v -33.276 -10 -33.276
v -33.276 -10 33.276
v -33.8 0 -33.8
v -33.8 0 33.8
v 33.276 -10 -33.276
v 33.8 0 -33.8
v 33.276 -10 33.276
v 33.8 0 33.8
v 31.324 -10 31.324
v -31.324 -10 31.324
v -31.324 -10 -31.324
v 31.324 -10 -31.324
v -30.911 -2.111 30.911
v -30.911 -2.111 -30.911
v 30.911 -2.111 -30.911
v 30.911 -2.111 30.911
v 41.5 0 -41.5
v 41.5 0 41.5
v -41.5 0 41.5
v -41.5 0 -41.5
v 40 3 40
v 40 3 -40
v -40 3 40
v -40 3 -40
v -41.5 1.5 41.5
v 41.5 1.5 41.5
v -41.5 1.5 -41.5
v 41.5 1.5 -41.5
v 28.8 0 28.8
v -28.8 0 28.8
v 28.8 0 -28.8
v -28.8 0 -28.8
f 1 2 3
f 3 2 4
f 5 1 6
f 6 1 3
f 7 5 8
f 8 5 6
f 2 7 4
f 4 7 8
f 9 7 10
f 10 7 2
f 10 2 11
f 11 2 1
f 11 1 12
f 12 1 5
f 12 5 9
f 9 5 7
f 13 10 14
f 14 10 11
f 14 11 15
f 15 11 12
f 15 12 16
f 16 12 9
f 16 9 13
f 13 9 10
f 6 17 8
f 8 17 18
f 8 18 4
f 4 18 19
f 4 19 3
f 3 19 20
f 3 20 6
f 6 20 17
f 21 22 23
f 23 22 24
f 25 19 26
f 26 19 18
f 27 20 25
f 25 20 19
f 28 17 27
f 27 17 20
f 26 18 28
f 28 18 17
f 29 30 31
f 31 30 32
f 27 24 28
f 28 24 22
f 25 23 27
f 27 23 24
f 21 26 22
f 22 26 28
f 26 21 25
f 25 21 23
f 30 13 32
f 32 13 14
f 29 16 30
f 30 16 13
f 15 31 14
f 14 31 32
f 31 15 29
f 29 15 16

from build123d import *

# Parameters (mm, degrees)
SKETCH1_W             = 67.6
SKETCH1_H             = 67.6
SKETCH1_W_2           = 61.6
SKETCH1_H_2           = 61.6
BOSS_EXTRUDE1_DEPTH   = 10
BOSS_EXTRUDE1_DRAFT   = -3
SKETCH2_W             = 83
SKETCH2_H             = 83
BOSS_EXTRUDE2_DEPTH   = 3
CHAMFER1_SIZE         = 1.5
CHAMFER2_SIZE         = 2
CHAMFER2_SIZE2        = 2.113509005
CHAMFER2_EDGE_2_SIZE  = 2
CHAMFER2_EDGE_2_SIZE2 = 2.113509005
CHAMFER2_EDGE_3_SIZE  = 2
CHAMFER2_EDGE_3_SIZE2 = 2.113509005
CHAMFER2_EDGE_4_SIZE  = 2
CHAMFER2_EDGE_4_SIZE2 = 2.113509005


with BuildPart() as part:
    # Sketch1 → Boss-Extrude1 (with draft: the straight prism first)
    with BuildSketch(Plane(origin=(0, 0, 0), x_dir=(1, 0, 0), z_dir=(0, 1, 0))):
        Rectangle(SKETCH1_W, SKETCH1_H)
        Rectangle(SKETCH1_W_2, SKETCH1_H_2, mode=Mode.SUBTRACT)
    extrude(amount=-BOSS_EXTRUDE1_DEPTH)
    # Boss-Extrude1: the draft: its side faces are tilted about the plane it starts from
    boss_extrude1_sides = [part.faces().sort_by_distance(p)[0] for p in [
        (-33.8, -5, 0),
        (0, -5, 33.8),
        (33.8, -5, 0),
        (0, -5, -33.8),
        (0, -5, -30.8),
        (30.8, -5, 0),
        (0, -5, 30.8),
        (-30.8, -5, 0),
    ]]
    draft(boss_extrude1_sides, Plane(origin=(0, 0, 0), x_dir=(1, 0, 0), z_dir=(0, 1, 0)), BOSS_EXTRUDE1_DRAFT)

    # Sketch2 → Boss-Extrude2 (add)
    with BuildSketch(Plane(origin=(0, 0, 0), x_dir=(1, 0, 0), z_dir=(0, 1, 0))):
        Rectangle(SKETCH2_W, SKETCH2_H)
    extrude(amount=BOSS_EXTRUDE2_DEPTH)

    # Chamfer1
    chamfer1_edges = [part.edges().sort_by_distance(p)[0] for p in [
        (41.5, 3, 0),
        (0, 3, -41.5),
        (-41.5, 3, 0),
        (0, 3, 41.5),
    ]]
    chamfer(chamfer1_edges, length=CHAMFER1_SIZE)

    # Chamfer2
    chamfer2_edges = [part.edges().sort_by_distance(p)[0] for p in [
        (-30.8, 0, 0),
    ]]
    chamfer2_side = [part.faces().sort_by_distance(p)[0] for p in [
        (0, 0, 0),
    ]]
    chamfer(chamfer2_edges, length=CHAMFER2_SIZE, length2=CHAMFER2_SIZE2, reference=chamfer2_side[0])

    # Chamfer2 edge 2
    chamfer2_edge_2_edges = [part.edges().sort_by_distance(p)[0] for p in [
        (0, 0, 30.8),
    ]]
    chamfer2_edge_2_side = [part.faces().sort_by_distance(p)[0] for p in [
        (0, 0, 0),
    ]]
    chamfer(chamfer2_edge_2_edges, length=CHAMFER2_EDGE_2_SIZE, length2=CHAMFER2_EDGE_2_SIZE2, reference=chamfer2_edge_2_side[0])

    # Chamfer2 edge 3
    chamfer2_edge_3_edges = [part.edges().sort_by_distance(p)[0] for p in [
        (30.8, 0, 0),
    ]]
    chamfer2_edge_3_side = [part.faces().sort_by_distance(p)[0] for p in [
        (0, 0, 0),
    ]]
    chamfer(chamfer2_edge_3_edges, length=CHAMFER2_EDGE_3_SIZE, length2=CHAMFER2_EDGE_3_SIZE2, reference=chamfer2_edge_3_side[0])

    # Chamfer2 edge 4
    chamfer2_edge_4_edges = [part.edges().sort_by_distance(p)[0] for p in [
        (0, 0, -30.8),
    ]]
    chamfer2_edge_4_side = [part.faces().sort_by_distance(p)[0] for p in [
        (0, 0, 0),
    ]]
    chamfer(chamfer2_edge_4_edges, length=CHAMFER2_EDGE_4_SIZE, length2=CHAMFER2_EDGE_4_SIZE2, reference=chamfer2_edge_4_side[0])


solid = part.part
